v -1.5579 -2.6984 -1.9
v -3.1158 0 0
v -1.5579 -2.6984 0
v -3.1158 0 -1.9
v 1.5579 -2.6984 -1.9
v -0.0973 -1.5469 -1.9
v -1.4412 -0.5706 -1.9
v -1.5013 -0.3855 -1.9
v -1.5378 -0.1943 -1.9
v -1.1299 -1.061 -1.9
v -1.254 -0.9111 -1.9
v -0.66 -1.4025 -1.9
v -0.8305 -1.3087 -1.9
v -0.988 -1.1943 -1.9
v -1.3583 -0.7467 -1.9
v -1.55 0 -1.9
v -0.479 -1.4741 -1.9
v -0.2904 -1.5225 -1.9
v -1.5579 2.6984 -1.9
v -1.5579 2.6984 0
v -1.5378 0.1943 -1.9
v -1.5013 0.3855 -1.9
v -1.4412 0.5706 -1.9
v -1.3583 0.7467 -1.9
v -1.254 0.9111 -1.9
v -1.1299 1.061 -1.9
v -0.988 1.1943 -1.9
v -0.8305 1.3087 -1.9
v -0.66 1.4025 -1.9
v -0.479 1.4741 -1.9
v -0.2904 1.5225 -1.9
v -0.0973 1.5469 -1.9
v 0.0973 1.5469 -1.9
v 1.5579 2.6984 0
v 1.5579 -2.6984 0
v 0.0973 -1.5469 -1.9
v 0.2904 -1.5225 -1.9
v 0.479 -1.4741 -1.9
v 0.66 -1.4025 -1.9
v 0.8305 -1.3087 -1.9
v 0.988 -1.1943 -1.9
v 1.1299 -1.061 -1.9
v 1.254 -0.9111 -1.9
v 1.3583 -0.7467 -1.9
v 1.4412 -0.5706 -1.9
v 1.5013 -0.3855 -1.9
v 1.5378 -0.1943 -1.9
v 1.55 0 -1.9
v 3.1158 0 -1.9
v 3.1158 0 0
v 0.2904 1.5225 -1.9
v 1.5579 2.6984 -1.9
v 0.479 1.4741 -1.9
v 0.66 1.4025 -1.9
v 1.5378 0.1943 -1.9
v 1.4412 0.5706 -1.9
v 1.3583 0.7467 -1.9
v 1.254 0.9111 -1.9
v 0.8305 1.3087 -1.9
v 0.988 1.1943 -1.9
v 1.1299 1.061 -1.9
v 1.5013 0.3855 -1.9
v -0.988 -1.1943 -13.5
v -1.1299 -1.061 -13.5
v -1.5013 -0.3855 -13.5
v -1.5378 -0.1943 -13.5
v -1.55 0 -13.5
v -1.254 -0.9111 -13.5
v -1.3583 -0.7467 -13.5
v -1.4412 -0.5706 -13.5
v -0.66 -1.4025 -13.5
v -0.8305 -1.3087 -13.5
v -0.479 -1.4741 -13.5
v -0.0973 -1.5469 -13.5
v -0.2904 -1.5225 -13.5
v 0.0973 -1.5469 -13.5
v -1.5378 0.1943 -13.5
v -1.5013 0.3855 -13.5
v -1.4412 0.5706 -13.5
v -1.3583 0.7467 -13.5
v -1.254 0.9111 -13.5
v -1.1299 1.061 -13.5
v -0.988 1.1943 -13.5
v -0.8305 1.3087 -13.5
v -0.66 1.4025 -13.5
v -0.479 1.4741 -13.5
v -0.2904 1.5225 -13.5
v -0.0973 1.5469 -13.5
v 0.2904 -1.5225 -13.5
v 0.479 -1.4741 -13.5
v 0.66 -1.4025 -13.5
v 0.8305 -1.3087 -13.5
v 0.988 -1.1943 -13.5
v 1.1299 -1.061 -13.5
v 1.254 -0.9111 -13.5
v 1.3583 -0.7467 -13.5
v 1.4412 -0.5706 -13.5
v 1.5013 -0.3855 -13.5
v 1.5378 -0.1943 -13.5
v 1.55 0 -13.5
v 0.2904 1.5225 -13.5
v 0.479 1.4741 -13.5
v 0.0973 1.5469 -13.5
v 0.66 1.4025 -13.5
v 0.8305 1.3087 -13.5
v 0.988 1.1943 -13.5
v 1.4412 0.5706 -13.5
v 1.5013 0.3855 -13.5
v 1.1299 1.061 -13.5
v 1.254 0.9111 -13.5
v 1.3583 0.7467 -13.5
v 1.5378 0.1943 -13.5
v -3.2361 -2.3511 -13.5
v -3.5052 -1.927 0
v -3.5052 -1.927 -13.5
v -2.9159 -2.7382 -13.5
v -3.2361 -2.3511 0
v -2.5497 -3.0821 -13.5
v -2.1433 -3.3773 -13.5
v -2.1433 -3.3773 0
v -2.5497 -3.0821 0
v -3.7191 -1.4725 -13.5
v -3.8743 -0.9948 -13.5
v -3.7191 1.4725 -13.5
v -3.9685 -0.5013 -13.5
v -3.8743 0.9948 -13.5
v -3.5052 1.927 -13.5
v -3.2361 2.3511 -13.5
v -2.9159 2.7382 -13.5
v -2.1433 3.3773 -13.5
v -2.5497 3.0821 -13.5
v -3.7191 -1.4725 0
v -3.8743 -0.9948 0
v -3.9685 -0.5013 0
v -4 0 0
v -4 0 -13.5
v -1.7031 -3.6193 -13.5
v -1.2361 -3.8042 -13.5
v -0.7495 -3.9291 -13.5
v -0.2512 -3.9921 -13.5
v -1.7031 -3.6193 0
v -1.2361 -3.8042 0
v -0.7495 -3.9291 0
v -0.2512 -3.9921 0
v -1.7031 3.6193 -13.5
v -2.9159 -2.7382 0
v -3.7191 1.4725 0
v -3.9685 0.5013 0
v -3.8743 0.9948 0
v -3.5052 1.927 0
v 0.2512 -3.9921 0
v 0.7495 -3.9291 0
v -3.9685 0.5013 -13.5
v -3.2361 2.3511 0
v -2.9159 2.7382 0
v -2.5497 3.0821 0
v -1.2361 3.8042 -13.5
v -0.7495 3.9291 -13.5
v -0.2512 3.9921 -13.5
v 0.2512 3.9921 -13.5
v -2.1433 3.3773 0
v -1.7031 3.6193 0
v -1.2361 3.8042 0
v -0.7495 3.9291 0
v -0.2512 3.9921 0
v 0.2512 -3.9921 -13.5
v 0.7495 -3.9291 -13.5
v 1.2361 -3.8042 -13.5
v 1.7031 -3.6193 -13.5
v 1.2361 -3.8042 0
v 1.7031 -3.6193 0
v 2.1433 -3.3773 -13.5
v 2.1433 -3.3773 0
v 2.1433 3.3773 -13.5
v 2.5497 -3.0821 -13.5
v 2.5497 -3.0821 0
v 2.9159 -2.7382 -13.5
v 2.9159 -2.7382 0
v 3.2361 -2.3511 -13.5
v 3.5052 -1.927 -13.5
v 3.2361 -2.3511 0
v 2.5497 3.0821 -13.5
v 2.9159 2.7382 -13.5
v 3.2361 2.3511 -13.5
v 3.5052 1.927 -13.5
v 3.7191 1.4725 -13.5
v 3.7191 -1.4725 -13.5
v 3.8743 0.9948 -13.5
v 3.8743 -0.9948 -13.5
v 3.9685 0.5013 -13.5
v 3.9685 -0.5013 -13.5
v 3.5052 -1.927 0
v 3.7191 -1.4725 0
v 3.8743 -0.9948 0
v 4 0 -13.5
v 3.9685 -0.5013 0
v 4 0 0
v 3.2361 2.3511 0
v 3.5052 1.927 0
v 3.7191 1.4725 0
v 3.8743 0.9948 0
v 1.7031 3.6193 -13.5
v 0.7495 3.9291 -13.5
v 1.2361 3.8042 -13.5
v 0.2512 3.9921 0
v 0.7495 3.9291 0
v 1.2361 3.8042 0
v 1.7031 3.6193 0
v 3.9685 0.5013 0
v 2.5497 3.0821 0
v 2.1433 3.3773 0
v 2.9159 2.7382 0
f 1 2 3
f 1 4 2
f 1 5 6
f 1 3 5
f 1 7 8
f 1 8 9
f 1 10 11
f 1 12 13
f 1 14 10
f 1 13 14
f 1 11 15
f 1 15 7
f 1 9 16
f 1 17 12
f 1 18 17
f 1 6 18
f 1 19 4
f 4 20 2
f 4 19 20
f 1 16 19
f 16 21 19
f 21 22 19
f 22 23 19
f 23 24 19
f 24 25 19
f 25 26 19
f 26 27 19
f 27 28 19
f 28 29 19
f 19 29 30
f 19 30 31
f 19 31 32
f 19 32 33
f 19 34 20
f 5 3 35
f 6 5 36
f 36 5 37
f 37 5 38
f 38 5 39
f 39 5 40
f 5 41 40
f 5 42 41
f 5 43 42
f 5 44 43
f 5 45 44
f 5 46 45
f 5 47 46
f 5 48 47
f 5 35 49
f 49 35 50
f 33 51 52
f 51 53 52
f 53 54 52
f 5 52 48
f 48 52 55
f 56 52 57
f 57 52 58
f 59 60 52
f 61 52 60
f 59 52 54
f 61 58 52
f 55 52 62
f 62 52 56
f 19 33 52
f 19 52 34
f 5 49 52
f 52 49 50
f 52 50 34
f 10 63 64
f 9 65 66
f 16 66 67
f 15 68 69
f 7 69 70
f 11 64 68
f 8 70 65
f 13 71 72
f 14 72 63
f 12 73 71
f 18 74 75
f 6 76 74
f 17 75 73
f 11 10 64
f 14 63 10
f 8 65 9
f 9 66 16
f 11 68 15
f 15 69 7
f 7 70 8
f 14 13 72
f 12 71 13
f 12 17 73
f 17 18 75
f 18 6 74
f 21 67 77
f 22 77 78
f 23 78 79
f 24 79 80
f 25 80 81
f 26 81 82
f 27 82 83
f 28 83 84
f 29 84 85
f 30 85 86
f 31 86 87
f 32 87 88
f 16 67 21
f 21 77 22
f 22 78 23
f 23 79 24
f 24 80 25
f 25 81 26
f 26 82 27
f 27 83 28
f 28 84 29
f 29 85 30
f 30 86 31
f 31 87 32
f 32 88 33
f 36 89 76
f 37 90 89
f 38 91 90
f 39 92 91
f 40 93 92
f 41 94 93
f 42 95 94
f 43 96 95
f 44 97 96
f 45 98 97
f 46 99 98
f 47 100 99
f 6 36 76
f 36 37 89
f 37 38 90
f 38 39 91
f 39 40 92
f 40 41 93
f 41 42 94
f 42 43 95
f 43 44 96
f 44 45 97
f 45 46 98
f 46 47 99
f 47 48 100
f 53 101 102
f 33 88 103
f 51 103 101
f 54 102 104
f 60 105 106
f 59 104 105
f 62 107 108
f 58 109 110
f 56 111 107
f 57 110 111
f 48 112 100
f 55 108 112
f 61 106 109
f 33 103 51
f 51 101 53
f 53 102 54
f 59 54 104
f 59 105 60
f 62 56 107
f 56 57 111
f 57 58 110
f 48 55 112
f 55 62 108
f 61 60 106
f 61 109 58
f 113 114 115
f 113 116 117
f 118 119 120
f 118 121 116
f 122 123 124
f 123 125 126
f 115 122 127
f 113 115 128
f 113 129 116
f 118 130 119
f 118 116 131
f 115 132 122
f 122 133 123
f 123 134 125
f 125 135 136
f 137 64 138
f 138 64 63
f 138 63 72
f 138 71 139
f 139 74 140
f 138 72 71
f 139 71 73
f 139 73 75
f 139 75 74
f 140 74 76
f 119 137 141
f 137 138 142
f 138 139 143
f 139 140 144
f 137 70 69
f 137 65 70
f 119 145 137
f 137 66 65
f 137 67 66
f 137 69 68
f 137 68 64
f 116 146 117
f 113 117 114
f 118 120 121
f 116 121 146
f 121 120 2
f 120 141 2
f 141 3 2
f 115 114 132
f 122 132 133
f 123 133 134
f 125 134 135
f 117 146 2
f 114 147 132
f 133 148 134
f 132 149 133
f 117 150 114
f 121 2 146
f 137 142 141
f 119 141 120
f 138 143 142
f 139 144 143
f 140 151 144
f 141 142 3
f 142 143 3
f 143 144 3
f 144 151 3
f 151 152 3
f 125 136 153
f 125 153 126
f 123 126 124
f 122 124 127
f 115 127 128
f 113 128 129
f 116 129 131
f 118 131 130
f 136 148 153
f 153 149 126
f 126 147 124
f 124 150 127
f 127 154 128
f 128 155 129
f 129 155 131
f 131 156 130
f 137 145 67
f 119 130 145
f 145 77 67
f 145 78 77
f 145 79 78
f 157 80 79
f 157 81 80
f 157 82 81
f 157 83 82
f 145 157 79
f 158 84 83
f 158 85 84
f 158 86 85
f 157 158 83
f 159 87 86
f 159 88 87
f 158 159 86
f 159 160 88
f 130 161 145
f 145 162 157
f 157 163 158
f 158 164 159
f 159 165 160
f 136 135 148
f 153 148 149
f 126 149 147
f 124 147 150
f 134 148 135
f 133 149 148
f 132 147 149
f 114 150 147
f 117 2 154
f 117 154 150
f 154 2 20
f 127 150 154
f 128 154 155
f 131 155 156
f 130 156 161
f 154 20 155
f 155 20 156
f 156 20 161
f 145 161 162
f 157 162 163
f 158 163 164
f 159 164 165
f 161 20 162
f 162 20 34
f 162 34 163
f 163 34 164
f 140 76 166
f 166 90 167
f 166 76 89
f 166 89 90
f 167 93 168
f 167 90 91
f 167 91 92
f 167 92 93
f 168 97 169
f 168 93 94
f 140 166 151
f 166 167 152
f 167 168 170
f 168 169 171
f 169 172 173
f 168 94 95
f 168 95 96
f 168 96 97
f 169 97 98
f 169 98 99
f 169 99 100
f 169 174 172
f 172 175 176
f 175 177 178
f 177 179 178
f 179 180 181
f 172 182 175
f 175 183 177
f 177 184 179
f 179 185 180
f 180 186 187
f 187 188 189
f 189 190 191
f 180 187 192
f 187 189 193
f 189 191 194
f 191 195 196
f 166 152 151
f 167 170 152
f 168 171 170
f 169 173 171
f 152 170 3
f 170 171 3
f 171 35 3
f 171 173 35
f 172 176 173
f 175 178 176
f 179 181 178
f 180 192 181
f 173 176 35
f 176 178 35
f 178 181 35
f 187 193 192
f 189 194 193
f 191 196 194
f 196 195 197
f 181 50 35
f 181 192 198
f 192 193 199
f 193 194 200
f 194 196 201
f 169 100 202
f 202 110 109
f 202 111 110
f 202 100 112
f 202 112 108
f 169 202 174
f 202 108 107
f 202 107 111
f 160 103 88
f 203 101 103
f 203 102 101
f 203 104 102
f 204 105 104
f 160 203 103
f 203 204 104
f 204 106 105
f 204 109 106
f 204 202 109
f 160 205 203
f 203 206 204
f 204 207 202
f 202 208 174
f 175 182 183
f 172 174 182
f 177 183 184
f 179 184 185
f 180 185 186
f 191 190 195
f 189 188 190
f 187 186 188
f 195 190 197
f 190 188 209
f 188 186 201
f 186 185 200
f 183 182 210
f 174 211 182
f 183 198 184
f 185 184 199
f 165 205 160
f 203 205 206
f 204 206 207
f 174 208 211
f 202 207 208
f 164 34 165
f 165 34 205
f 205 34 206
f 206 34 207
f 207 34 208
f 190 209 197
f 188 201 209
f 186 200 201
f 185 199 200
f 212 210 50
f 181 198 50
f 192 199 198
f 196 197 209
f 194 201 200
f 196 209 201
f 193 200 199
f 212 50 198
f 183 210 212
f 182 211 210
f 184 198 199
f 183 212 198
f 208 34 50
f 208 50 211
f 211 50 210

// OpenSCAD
$fn = 50;

difference() {
	union() {
		translate(v = [0, 0, -13.5]) {
			cylinder(h = 13.5, r = 4.0);
		}
	}
	union() {
		translate(v = [0, 0, 0]) {
			rotate(a = [0, 0, 0]) {
				difference() {
					union() {
						translate(v = [0, 0, -1.9]) {
							linear_extrude(height = 1.9) {
								polygon(points = [[3.1158, 0.0], [1.5579000000000005, 2.698361953111554], [-1.5578999999999994, 2.6983619531115544], [-3.1158, 3.815754496783323e-16], [-1.5579000000000014, -2.6983619531115535], [1.557899999999998, -2.6983619531115552]]);
							}
						}
					}
					union();
				}
			}
		}
		#translate(v = [0, 0, -100.0]) {
			cylinder(h = 200, r = 1.55);
		}
	}
}
